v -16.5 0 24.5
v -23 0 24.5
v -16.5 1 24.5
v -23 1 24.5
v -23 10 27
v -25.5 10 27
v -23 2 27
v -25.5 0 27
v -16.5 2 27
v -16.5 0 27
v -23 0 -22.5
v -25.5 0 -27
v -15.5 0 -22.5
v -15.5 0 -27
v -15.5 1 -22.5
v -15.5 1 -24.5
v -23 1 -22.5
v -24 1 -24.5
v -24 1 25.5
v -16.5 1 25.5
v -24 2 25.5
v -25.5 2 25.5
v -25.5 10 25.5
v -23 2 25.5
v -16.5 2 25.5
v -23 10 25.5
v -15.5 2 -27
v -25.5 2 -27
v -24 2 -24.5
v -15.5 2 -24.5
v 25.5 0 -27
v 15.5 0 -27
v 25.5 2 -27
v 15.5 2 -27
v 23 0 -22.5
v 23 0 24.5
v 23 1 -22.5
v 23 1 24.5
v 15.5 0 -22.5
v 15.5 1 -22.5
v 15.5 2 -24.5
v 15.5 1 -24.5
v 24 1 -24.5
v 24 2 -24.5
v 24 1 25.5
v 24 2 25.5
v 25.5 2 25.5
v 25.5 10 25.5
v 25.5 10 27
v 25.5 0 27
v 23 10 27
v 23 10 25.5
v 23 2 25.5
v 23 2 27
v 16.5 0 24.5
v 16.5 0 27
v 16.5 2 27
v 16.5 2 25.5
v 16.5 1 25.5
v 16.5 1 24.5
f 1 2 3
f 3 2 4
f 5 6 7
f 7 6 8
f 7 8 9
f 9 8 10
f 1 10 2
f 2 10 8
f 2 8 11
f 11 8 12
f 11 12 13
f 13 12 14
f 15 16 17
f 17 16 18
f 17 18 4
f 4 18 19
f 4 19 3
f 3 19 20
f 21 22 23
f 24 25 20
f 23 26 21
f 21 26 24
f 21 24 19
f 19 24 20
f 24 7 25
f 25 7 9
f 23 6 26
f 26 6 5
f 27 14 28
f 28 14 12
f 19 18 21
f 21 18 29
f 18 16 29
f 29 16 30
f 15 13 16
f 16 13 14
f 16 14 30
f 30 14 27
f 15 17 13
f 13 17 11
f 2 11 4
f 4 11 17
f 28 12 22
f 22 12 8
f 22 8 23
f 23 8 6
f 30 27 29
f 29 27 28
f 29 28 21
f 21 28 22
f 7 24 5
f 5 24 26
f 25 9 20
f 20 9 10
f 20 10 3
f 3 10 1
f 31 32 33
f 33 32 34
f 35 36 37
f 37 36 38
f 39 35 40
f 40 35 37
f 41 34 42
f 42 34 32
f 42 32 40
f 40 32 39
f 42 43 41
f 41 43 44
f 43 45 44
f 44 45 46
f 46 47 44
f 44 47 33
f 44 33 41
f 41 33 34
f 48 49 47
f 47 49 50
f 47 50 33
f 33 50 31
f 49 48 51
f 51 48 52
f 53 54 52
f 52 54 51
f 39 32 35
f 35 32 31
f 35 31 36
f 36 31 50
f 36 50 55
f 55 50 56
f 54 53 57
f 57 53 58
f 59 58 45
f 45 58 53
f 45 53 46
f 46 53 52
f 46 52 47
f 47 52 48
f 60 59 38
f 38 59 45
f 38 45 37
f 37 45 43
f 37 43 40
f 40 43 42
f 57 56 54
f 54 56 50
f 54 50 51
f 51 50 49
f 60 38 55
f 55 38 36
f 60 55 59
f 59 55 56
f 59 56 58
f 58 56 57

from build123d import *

# Parameters (mm, degrees)
SKETCH_1_W          = 51
SKETCH_1_H          = 54
EXTRUDE_1_DEPTH     = 10
SKETCH_2_W          = 46
SKETCH_2_H          = 47
CUT_EXTRUDE_1_DEPTH = 11
SKETCH_3_W          = 48
SKETCH_3_H          = 50
CUT_EXTRUDE_2_DEPTH = 9
SKETCH_4_W          = 31
SKETCH_4_H          = 4.5
CUT_EXTRUDE_3_DEPTH = 11
SKETCH_5_W          = 48
SKETCH_5_H          = 4.5
CUT_EXTRUDE_4_DEPTH = 8
SKETCH_6_W          = 1.5
SKETCH_6_H          = 52.5
CUT_EXTRUDE_5_DEPTH = 8
SKETCH_7_W          = 46
SKETCH_7_H          = 1.5
CUT_EXTRUDE_6_DEPTH = 8
SKETCH_8_W          = 33
SKETCH_8_H          = 5
CUT_EXTRUDE_7_DEPTH = 3


with BuildPart() as part:
    # 草图1 → 凸台-拉伸1 (new body)
    with BuildSketch(Plane(origin=(0, 0, 0), x_dir=(1, 0, 0), z_dir=(0, 1, 0))):
        Rectangle(SKETCH_1_W, SKETCH_1_H)
    extrude(amount=EXTRUDE_1_DEPTH)

    # 草图2 → 切除-拉伸1 (cut, through all)
    with BuildSketch(Plane(origin=(0, 10, 0), x_dir=(1, 0, 0), z_dir=(0, 1, 0))):
        with Locations((0, -1)):
            Rectangle(SKETCH_2_W, SKETCH_2_H)
    extrude(amount=-CUT_EXTRUDE_1_DEPTH, mode=Mode.SUBTRACT)

    # 草图3 → 切除-拉伸2 (cut)
    with BuildSketch(Plane(origin=(0, 10, 0), x_dir=(1, 0, 0), z_dir=(0, 1, 0))):
        with Locations((0, -0.5)):
            Rectangle(SKETCH_3_W, SKETCH_3_H)
    extrude(amount=-CUT_EXTRUDE_2_DEPTH, mode=Mode.SUBTRACT)

    # 草图4 → 切除-拉伸3 (cut, through all)
    with BuildSketch(Plane(origin=(0, 10, 0), x_dir=(1, 0, 0), z_dir=(0, 1, 0))):
        with Locations((0, 24.75)):
            Rectangle(SKETCH_4_W, SKETCH_4_H)
    extrude(amount=-CUT_EXTRUDE_3_DEPTH, mode=Mode.SUBTRACT)

    # 草图5 → 切除-拉伸4 (cut)
    with BuildSketch(Plane(origin=(0, 10, 0), x_dir=(1, 0, 0), z_dir=(0, 1, 0))):
        with Locations((0, 24.75)):
            Rectangle(SKETCH_5_W, SKETCH_5_H)
    extrude(amount=-CUT_EXTRUDE_4_DEPTH, mode=Mode.SUBTRACT)

    # 草图6 → 切除-拉伸5 (cut)
    with BuildSketch(Plane(origin=(0, 10, 0), x_dir=(1, 0, 0), z_dir=(0, 1, 0))):
        with Locations((-24.75, 0.75)):
            Rectangle(SKETCH_6_W, SKETCH_6_H)
        with Locations((24.75, 0.75)):
            Rectangle(SKETCH_6_W, SKETCH_6_H)
    extrude(amount=-CUT_EXTRUDE_5_DEPTH, mode=Mode.SUBTRACT)

    # 草图7 → 切除-拉伸6 (cut)
    with BuildSketch(Plane(origin=(0, 10, 0), x_dir=(1, 0, 0), z_dir=(0, 1, 0))):
        with Locations((0, -26.25)):
            Rectangle(SKETCH_7_W, SKETCH_7_H)
    extrude(amount=-CUT_EXTRUDE_6_DEPTH, mode=Mode.SUBTRACT)

    # 草图8 → 切除-拉伸7 (cut, through all)
    with BuildSketch(Plane(origin=(0, 2, 0), x_dir=(1, 0, 0), z_dir=(0, 1, 0))):
        with Locations((0, -27)):
            Rectangle(SKETCH_8_W, SKETCH_8_H)
    extrude(amount=-CUT_EXTRUDE_7_DEPTH, mode=Mode.SUBTRACT)


solid = part.part
